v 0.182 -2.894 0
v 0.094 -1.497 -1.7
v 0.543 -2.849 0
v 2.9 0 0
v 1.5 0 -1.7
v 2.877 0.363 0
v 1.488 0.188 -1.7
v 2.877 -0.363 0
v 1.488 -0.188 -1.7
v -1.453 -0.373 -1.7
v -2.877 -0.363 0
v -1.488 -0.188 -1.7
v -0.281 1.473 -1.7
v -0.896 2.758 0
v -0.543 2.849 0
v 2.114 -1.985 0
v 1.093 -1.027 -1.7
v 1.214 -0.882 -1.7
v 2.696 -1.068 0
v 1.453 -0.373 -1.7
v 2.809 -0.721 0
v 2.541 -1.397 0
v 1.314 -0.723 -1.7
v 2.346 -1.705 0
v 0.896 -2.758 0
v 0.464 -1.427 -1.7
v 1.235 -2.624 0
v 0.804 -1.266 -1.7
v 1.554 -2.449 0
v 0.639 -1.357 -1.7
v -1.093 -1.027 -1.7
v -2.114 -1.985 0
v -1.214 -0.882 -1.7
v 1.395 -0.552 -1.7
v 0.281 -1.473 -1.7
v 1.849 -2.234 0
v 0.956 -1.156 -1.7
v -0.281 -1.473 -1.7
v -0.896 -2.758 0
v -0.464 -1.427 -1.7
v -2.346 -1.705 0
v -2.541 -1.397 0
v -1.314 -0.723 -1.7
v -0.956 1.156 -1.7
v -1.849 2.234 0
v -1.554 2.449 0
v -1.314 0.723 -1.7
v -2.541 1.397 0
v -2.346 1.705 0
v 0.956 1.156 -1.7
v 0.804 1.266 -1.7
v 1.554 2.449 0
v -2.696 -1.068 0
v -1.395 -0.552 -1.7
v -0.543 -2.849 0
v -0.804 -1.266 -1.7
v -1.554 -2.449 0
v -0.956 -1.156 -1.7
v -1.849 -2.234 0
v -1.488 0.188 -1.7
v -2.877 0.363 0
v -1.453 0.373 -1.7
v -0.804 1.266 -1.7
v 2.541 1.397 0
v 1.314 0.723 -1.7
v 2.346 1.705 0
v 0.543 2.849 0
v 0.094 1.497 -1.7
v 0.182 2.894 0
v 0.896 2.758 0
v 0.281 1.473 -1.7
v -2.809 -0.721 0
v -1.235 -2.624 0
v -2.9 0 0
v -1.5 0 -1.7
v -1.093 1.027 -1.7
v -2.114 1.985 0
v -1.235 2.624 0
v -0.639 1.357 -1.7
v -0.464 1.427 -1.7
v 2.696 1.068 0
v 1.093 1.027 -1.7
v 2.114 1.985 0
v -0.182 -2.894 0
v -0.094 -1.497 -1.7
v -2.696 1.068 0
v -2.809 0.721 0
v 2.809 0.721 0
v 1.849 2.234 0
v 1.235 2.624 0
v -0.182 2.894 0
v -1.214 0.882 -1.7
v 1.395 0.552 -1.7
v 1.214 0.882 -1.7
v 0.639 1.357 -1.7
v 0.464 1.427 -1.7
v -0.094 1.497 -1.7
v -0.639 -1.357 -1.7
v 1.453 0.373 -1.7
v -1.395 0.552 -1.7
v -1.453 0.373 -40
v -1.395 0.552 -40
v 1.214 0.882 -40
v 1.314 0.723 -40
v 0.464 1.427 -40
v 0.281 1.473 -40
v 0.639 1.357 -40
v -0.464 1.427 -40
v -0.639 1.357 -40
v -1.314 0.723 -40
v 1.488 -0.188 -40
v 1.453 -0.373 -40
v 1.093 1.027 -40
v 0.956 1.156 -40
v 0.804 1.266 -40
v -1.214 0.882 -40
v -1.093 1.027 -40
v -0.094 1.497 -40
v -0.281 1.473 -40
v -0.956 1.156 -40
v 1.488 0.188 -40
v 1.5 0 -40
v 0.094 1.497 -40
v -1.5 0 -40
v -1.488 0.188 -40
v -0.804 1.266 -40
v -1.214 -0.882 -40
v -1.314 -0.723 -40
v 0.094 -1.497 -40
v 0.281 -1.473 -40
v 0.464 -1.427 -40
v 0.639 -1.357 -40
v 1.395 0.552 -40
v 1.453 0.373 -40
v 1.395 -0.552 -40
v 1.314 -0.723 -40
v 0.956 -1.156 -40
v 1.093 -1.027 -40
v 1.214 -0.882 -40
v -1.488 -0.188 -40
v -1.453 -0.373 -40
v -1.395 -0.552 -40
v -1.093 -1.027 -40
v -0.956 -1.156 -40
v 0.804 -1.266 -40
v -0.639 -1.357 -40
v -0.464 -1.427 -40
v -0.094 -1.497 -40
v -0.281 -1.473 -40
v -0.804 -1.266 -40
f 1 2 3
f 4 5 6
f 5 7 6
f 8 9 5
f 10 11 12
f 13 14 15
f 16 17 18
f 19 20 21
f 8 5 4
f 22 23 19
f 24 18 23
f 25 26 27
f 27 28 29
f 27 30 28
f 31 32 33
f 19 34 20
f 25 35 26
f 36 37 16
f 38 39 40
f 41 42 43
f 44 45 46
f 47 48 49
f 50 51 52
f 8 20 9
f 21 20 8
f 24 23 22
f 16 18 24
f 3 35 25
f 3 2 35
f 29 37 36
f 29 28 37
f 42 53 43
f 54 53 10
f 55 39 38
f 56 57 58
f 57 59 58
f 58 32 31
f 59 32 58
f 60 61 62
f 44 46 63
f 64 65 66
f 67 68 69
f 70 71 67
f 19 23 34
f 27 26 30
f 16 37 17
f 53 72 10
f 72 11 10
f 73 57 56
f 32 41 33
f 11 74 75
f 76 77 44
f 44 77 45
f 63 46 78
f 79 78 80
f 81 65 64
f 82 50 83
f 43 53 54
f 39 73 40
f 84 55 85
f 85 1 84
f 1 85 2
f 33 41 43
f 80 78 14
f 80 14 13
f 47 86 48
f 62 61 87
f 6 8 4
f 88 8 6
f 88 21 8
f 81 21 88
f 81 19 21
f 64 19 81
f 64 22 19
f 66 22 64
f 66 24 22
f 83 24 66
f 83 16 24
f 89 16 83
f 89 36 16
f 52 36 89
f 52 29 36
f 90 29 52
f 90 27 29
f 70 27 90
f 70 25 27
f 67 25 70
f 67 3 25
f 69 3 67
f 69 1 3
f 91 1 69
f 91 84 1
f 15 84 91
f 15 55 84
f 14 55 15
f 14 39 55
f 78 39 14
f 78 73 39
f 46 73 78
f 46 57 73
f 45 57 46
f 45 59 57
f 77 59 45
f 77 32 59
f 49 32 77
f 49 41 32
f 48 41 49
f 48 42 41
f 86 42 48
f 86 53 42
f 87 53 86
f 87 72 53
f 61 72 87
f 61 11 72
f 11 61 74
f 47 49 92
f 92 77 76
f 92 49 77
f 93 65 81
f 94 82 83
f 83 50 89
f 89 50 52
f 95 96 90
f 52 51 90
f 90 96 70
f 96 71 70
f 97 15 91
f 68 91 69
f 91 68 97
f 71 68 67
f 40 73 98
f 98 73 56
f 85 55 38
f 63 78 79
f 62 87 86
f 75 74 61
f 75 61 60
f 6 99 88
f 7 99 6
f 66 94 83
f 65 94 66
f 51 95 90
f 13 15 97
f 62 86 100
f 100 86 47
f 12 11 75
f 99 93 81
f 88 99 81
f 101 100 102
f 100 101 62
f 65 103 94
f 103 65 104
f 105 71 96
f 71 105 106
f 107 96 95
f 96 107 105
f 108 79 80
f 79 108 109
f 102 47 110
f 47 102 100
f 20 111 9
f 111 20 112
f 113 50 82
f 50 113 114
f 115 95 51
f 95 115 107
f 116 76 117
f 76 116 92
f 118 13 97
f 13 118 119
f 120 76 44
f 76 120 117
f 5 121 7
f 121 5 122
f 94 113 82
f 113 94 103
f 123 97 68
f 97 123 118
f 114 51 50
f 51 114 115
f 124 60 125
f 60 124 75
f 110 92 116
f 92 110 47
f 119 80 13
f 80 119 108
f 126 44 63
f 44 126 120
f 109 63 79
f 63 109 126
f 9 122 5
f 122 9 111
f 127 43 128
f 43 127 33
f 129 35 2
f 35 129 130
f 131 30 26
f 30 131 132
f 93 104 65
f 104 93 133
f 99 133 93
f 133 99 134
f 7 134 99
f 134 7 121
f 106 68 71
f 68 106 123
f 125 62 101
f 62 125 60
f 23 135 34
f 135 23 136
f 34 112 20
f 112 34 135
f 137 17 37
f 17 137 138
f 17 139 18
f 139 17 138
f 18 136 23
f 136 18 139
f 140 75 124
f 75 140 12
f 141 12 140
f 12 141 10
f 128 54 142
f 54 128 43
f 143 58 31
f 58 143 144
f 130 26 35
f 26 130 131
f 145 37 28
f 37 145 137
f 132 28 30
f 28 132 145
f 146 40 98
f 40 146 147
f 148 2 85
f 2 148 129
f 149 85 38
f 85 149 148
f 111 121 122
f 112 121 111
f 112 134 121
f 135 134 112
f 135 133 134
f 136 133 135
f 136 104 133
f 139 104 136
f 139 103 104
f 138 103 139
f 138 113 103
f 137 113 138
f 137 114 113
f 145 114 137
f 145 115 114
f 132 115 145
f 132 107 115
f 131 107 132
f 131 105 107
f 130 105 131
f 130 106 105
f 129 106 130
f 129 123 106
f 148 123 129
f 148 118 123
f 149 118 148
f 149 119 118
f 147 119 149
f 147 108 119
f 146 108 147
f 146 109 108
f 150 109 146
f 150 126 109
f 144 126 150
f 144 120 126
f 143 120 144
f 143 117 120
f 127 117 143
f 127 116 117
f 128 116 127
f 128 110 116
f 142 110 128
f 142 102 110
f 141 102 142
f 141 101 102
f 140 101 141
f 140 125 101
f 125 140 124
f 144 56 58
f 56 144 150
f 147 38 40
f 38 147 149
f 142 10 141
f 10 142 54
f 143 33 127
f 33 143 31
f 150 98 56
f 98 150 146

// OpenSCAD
$fn = 50;


difference() {
	union() {
		translate(v = [0, 0, -1.7000000000]) {
			rotate(a = [0, 0, 0]) {
				cylinder(h = 1.7000000000, r1 = 1.5000000000, r2 = 2.9000000000);
			}
		}
		translate(v = [0, 0, -40]) {
			rotate(a = [0, 0, 0]) {
				cylinder(h = 40, r = 1.5000000000);
			}
		}
	}
	union();
}
